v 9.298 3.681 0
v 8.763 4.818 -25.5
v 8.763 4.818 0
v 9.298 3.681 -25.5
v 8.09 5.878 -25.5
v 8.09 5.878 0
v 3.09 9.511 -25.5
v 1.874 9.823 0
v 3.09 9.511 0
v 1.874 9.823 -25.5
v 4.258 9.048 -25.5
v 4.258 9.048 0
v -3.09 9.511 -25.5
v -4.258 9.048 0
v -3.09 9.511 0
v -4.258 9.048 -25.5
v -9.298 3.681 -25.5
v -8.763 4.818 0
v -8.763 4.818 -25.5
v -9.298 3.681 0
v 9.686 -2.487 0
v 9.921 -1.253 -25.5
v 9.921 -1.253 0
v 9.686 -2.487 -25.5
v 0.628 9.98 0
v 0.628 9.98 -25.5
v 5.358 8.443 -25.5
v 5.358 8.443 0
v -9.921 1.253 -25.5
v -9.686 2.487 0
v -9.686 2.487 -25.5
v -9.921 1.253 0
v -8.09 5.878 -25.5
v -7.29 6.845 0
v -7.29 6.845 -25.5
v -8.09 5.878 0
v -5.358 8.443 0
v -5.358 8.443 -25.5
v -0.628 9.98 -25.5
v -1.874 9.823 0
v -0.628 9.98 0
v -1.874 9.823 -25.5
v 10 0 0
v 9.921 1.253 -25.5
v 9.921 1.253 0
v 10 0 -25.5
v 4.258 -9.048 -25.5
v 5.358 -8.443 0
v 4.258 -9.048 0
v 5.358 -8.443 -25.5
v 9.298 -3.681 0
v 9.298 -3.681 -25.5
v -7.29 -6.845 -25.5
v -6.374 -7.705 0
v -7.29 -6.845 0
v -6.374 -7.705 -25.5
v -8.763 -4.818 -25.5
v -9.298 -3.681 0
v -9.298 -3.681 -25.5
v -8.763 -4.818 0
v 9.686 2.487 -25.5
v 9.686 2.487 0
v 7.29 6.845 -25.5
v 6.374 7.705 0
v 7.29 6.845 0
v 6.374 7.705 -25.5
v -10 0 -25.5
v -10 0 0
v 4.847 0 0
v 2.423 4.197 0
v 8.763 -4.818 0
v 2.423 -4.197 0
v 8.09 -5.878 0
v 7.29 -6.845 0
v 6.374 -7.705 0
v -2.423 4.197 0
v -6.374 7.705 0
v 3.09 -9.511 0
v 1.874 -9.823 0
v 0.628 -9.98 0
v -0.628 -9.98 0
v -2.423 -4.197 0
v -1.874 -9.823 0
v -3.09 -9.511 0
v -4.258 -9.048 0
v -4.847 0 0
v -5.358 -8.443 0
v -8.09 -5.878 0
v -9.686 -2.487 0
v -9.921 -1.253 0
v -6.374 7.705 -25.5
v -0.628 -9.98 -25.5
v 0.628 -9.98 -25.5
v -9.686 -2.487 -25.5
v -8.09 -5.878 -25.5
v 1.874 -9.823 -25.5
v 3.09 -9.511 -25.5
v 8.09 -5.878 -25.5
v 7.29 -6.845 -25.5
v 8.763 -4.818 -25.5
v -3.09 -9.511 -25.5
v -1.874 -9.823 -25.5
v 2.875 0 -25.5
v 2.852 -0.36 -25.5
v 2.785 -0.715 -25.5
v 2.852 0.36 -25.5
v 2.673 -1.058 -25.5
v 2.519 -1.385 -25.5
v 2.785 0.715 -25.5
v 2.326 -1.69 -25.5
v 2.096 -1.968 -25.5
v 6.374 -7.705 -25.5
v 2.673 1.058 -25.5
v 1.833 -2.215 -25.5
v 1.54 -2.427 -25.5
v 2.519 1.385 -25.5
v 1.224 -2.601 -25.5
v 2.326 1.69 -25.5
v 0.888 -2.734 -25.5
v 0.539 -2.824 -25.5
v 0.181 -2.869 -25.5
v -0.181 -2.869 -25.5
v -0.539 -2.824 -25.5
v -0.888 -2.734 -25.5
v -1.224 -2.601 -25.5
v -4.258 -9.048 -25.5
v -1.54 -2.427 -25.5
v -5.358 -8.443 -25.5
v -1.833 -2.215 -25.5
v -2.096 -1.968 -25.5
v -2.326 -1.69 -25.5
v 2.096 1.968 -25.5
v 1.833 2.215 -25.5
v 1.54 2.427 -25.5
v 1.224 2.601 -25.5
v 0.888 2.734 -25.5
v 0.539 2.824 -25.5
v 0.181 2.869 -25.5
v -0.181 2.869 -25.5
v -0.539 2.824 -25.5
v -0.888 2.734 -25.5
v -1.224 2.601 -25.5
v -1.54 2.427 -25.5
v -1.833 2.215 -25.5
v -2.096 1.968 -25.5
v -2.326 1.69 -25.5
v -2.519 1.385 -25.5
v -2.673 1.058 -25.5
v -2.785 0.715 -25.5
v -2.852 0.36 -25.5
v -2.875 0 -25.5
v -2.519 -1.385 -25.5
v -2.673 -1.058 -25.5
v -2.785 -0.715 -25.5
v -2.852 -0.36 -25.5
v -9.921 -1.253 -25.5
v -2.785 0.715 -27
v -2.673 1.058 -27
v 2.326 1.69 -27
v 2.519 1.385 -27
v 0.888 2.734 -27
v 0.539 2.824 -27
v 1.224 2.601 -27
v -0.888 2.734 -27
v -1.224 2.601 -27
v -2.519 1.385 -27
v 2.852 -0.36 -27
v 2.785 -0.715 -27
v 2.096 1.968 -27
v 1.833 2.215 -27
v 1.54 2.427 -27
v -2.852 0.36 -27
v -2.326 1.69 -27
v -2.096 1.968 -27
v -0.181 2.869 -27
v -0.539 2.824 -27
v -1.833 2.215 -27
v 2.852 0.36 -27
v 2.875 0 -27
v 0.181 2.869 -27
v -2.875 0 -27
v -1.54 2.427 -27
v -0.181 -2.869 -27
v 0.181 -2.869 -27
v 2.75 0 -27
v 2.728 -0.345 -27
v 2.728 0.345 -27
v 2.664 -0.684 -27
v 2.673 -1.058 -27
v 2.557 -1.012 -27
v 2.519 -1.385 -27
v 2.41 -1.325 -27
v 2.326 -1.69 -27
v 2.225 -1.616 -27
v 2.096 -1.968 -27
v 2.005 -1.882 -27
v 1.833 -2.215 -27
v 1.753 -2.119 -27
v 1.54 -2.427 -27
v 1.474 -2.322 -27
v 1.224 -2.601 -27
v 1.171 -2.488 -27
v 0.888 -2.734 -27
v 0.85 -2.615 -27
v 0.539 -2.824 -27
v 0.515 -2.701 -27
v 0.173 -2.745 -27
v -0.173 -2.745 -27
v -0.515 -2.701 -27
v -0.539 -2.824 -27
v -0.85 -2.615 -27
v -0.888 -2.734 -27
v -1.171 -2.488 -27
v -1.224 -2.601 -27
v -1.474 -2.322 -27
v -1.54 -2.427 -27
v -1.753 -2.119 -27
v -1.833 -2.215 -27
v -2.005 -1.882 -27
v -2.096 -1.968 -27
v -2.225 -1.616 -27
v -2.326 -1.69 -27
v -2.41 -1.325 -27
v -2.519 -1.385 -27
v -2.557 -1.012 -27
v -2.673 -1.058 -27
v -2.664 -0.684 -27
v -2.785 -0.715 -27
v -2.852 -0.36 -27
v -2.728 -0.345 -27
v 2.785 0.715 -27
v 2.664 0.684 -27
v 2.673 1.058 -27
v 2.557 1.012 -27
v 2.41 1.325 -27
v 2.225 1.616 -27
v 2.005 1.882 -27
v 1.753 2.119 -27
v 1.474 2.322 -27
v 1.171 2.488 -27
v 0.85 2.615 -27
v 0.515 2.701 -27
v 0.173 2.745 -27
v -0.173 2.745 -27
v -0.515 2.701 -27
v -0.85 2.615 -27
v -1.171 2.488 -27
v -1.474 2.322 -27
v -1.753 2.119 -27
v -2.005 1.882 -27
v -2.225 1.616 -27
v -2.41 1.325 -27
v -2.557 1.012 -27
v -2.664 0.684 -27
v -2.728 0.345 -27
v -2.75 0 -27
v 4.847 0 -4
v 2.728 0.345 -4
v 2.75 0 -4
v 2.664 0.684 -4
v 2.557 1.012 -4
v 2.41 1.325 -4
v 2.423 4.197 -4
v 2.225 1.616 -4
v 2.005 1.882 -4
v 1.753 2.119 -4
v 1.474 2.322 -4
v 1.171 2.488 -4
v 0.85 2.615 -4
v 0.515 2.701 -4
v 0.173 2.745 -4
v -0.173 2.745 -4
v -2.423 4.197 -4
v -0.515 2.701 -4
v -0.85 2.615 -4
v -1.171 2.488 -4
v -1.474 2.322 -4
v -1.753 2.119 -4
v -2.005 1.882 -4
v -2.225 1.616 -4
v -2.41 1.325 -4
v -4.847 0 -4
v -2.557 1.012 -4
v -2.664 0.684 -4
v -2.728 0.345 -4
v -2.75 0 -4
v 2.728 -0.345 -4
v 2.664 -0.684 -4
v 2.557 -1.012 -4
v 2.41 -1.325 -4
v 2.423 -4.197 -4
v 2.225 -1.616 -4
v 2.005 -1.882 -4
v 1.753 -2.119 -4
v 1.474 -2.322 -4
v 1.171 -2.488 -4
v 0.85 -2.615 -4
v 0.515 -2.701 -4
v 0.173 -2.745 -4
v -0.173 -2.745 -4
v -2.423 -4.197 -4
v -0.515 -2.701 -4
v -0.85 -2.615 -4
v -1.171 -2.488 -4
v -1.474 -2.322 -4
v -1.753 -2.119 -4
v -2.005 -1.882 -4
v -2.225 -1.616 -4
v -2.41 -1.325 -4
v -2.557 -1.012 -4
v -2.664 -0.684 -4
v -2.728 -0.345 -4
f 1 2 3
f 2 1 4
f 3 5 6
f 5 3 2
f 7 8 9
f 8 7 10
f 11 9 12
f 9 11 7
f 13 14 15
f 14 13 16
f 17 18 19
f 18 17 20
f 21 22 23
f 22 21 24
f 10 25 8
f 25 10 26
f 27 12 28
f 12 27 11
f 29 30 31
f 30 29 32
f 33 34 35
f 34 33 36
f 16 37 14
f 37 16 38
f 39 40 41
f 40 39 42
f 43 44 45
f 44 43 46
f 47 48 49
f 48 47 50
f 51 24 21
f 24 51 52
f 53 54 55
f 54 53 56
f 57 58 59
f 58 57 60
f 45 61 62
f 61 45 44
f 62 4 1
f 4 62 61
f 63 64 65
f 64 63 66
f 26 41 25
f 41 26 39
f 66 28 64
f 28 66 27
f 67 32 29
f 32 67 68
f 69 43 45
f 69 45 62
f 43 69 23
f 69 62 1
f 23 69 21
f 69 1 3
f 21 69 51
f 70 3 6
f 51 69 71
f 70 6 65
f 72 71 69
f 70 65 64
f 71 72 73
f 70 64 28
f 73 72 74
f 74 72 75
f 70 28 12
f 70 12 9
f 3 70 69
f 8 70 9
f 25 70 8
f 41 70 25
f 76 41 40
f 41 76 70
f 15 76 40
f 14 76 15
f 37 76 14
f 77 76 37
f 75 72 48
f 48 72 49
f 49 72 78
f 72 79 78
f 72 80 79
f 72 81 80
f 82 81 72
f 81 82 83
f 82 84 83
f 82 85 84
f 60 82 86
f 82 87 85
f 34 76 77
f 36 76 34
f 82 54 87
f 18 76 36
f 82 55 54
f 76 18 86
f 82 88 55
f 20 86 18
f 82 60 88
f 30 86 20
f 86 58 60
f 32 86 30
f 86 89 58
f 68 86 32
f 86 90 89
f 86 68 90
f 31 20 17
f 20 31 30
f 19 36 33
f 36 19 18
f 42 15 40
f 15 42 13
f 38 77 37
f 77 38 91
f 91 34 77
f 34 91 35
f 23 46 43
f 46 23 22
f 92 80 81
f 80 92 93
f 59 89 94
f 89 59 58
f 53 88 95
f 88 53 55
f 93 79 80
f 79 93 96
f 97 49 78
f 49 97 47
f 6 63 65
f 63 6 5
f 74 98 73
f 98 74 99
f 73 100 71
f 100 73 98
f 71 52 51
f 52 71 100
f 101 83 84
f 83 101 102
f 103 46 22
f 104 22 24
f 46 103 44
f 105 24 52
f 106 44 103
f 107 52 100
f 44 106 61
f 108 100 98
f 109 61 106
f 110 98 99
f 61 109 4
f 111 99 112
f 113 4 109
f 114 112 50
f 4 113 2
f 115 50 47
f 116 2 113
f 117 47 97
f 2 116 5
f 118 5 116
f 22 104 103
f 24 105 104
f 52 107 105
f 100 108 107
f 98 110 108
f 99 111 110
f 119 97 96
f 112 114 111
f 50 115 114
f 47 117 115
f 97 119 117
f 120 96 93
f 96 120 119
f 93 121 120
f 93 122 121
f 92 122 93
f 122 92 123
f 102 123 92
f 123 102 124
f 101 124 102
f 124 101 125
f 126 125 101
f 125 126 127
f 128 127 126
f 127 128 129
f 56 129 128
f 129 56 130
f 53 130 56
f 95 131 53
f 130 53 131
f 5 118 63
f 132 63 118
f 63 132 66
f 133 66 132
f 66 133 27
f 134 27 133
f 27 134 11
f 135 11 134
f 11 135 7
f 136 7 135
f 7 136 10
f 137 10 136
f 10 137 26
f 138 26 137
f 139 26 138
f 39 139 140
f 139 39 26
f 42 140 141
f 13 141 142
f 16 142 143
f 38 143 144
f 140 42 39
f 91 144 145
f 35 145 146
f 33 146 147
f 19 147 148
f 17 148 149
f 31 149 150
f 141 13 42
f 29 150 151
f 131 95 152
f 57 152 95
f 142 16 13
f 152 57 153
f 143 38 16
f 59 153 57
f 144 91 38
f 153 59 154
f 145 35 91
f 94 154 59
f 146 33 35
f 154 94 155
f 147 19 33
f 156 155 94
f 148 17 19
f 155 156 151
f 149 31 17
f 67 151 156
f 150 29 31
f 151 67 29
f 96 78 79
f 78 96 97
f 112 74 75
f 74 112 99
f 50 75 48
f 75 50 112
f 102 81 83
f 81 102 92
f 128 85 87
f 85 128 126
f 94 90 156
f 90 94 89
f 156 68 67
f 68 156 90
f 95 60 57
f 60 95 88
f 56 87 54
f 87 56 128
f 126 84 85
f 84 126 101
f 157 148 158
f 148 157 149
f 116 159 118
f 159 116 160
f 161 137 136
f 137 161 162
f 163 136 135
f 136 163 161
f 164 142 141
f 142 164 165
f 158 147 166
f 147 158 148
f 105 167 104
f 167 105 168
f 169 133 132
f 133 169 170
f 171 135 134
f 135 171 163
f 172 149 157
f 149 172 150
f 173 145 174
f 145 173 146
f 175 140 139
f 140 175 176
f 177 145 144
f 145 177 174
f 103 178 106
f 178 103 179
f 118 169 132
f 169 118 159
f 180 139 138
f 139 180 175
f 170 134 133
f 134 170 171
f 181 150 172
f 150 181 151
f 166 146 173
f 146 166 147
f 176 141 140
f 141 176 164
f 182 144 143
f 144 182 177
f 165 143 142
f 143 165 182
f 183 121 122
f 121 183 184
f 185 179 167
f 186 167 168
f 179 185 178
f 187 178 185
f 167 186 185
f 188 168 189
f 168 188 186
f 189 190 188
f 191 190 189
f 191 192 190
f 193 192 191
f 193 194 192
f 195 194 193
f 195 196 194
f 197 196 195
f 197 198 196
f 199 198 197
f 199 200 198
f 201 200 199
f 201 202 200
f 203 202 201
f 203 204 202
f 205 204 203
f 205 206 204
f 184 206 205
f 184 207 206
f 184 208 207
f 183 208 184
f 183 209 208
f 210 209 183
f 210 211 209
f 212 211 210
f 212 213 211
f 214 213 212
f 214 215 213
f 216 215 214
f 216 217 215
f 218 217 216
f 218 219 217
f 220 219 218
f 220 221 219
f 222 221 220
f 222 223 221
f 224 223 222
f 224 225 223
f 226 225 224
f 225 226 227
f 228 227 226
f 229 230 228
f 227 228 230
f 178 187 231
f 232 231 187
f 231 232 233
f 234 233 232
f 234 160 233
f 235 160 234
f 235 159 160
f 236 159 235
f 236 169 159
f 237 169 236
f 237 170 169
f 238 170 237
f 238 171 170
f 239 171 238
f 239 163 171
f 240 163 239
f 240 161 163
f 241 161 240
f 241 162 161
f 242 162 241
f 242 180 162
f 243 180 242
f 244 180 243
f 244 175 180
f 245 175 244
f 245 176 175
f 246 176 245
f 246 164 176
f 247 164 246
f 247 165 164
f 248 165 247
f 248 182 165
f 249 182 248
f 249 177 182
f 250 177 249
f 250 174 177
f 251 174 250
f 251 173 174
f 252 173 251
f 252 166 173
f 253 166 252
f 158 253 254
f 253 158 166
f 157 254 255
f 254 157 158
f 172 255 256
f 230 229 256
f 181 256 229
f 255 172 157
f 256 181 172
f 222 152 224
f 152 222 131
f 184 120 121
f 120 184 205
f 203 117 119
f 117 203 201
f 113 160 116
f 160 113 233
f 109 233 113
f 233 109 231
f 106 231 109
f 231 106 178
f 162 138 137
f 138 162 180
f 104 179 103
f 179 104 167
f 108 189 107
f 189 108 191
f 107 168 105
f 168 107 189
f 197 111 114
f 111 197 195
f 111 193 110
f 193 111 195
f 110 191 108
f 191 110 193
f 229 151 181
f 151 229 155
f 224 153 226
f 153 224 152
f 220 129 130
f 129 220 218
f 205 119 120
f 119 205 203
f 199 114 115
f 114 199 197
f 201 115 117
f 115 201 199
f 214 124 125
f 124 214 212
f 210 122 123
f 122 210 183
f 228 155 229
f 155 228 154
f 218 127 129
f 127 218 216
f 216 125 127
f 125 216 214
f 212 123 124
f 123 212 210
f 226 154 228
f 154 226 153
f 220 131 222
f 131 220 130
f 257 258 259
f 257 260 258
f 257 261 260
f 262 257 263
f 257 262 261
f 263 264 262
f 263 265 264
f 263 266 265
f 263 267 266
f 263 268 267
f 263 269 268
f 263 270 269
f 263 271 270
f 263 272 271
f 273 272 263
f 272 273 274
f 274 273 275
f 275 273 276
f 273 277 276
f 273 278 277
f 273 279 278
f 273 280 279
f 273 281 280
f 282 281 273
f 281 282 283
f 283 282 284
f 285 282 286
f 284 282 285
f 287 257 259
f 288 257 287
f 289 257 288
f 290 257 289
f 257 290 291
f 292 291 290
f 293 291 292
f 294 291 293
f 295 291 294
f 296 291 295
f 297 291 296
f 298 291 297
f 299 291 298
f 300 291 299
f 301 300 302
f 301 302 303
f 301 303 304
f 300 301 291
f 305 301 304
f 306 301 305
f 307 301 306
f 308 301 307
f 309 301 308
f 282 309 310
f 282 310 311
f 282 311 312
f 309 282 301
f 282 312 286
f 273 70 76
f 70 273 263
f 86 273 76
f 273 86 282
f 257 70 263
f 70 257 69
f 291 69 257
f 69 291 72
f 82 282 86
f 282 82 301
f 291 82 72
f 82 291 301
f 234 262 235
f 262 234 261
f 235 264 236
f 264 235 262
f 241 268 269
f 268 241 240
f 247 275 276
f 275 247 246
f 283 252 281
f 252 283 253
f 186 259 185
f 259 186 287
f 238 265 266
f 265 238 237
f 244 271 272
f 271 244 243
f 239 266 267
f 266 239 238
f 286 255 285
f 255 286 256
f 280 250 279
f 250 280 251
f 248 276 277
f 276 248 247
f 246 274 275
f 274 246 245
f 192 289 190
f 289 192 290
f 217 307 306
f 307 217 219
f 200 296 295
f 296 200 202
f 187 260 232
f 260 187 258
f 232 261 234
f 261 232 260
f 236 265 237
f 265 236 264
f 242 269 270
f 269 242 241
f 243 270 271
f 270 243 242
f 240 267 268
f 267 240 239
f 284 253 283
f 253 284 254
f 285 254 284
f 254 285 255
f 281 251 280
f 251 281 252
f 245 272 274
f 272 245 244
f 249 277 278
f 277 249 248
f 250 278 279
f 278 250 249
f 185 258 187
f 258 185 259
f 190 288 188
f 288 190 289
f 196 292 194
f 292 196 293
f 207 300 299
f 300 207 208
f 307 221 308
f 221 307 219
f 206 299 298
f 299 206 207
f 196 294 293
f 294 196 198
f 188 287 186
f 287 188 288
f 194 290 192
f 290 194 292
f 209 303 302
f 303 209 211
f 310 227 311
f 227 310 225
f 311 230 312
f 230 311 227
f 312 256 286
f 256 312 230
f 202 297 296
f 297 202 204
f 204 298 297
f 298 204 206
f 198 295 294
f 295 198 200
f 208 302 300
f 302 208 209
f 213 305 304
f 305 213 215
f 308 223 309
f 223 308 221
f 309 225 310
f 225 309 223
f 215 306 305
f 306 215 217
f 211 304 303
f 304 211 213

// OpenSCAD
$fn = 50;

difference() {
	union() {
		translate(v = [0, 0, -25.5]) {
			cylinder(h = 25.5, r = 10.0);
		}
		#translate(v = [0, 0, -27.0]) {
			cylinder(h = 27, r = 2.875);
		}
	}
	union() {
		translate(v = [0, 0, 0]) {
			rotate(a = [0, 0, 0]) {
				difference() {
					union() {
						translate(v = [0, 0, -4]) {
							linear_extrude(height = 4) {
								polygon(points = [[4.8468, 0.0], [2.4234000000000004, 4.197451927062417], [-2.423399999999999, 4.197451927062417], [-4.8468, 5.935618106107392e-16], [-2.423400000000002, -4.197451927062416], [2.423399999999997, -4.197451927062419]]);
							}
						}
					}
					union();
				}
			}
		}
		#translate(v = [0, 0, -100.0]) {
			cylinder(h = 200, r = 2.75);
		}
	}
}
